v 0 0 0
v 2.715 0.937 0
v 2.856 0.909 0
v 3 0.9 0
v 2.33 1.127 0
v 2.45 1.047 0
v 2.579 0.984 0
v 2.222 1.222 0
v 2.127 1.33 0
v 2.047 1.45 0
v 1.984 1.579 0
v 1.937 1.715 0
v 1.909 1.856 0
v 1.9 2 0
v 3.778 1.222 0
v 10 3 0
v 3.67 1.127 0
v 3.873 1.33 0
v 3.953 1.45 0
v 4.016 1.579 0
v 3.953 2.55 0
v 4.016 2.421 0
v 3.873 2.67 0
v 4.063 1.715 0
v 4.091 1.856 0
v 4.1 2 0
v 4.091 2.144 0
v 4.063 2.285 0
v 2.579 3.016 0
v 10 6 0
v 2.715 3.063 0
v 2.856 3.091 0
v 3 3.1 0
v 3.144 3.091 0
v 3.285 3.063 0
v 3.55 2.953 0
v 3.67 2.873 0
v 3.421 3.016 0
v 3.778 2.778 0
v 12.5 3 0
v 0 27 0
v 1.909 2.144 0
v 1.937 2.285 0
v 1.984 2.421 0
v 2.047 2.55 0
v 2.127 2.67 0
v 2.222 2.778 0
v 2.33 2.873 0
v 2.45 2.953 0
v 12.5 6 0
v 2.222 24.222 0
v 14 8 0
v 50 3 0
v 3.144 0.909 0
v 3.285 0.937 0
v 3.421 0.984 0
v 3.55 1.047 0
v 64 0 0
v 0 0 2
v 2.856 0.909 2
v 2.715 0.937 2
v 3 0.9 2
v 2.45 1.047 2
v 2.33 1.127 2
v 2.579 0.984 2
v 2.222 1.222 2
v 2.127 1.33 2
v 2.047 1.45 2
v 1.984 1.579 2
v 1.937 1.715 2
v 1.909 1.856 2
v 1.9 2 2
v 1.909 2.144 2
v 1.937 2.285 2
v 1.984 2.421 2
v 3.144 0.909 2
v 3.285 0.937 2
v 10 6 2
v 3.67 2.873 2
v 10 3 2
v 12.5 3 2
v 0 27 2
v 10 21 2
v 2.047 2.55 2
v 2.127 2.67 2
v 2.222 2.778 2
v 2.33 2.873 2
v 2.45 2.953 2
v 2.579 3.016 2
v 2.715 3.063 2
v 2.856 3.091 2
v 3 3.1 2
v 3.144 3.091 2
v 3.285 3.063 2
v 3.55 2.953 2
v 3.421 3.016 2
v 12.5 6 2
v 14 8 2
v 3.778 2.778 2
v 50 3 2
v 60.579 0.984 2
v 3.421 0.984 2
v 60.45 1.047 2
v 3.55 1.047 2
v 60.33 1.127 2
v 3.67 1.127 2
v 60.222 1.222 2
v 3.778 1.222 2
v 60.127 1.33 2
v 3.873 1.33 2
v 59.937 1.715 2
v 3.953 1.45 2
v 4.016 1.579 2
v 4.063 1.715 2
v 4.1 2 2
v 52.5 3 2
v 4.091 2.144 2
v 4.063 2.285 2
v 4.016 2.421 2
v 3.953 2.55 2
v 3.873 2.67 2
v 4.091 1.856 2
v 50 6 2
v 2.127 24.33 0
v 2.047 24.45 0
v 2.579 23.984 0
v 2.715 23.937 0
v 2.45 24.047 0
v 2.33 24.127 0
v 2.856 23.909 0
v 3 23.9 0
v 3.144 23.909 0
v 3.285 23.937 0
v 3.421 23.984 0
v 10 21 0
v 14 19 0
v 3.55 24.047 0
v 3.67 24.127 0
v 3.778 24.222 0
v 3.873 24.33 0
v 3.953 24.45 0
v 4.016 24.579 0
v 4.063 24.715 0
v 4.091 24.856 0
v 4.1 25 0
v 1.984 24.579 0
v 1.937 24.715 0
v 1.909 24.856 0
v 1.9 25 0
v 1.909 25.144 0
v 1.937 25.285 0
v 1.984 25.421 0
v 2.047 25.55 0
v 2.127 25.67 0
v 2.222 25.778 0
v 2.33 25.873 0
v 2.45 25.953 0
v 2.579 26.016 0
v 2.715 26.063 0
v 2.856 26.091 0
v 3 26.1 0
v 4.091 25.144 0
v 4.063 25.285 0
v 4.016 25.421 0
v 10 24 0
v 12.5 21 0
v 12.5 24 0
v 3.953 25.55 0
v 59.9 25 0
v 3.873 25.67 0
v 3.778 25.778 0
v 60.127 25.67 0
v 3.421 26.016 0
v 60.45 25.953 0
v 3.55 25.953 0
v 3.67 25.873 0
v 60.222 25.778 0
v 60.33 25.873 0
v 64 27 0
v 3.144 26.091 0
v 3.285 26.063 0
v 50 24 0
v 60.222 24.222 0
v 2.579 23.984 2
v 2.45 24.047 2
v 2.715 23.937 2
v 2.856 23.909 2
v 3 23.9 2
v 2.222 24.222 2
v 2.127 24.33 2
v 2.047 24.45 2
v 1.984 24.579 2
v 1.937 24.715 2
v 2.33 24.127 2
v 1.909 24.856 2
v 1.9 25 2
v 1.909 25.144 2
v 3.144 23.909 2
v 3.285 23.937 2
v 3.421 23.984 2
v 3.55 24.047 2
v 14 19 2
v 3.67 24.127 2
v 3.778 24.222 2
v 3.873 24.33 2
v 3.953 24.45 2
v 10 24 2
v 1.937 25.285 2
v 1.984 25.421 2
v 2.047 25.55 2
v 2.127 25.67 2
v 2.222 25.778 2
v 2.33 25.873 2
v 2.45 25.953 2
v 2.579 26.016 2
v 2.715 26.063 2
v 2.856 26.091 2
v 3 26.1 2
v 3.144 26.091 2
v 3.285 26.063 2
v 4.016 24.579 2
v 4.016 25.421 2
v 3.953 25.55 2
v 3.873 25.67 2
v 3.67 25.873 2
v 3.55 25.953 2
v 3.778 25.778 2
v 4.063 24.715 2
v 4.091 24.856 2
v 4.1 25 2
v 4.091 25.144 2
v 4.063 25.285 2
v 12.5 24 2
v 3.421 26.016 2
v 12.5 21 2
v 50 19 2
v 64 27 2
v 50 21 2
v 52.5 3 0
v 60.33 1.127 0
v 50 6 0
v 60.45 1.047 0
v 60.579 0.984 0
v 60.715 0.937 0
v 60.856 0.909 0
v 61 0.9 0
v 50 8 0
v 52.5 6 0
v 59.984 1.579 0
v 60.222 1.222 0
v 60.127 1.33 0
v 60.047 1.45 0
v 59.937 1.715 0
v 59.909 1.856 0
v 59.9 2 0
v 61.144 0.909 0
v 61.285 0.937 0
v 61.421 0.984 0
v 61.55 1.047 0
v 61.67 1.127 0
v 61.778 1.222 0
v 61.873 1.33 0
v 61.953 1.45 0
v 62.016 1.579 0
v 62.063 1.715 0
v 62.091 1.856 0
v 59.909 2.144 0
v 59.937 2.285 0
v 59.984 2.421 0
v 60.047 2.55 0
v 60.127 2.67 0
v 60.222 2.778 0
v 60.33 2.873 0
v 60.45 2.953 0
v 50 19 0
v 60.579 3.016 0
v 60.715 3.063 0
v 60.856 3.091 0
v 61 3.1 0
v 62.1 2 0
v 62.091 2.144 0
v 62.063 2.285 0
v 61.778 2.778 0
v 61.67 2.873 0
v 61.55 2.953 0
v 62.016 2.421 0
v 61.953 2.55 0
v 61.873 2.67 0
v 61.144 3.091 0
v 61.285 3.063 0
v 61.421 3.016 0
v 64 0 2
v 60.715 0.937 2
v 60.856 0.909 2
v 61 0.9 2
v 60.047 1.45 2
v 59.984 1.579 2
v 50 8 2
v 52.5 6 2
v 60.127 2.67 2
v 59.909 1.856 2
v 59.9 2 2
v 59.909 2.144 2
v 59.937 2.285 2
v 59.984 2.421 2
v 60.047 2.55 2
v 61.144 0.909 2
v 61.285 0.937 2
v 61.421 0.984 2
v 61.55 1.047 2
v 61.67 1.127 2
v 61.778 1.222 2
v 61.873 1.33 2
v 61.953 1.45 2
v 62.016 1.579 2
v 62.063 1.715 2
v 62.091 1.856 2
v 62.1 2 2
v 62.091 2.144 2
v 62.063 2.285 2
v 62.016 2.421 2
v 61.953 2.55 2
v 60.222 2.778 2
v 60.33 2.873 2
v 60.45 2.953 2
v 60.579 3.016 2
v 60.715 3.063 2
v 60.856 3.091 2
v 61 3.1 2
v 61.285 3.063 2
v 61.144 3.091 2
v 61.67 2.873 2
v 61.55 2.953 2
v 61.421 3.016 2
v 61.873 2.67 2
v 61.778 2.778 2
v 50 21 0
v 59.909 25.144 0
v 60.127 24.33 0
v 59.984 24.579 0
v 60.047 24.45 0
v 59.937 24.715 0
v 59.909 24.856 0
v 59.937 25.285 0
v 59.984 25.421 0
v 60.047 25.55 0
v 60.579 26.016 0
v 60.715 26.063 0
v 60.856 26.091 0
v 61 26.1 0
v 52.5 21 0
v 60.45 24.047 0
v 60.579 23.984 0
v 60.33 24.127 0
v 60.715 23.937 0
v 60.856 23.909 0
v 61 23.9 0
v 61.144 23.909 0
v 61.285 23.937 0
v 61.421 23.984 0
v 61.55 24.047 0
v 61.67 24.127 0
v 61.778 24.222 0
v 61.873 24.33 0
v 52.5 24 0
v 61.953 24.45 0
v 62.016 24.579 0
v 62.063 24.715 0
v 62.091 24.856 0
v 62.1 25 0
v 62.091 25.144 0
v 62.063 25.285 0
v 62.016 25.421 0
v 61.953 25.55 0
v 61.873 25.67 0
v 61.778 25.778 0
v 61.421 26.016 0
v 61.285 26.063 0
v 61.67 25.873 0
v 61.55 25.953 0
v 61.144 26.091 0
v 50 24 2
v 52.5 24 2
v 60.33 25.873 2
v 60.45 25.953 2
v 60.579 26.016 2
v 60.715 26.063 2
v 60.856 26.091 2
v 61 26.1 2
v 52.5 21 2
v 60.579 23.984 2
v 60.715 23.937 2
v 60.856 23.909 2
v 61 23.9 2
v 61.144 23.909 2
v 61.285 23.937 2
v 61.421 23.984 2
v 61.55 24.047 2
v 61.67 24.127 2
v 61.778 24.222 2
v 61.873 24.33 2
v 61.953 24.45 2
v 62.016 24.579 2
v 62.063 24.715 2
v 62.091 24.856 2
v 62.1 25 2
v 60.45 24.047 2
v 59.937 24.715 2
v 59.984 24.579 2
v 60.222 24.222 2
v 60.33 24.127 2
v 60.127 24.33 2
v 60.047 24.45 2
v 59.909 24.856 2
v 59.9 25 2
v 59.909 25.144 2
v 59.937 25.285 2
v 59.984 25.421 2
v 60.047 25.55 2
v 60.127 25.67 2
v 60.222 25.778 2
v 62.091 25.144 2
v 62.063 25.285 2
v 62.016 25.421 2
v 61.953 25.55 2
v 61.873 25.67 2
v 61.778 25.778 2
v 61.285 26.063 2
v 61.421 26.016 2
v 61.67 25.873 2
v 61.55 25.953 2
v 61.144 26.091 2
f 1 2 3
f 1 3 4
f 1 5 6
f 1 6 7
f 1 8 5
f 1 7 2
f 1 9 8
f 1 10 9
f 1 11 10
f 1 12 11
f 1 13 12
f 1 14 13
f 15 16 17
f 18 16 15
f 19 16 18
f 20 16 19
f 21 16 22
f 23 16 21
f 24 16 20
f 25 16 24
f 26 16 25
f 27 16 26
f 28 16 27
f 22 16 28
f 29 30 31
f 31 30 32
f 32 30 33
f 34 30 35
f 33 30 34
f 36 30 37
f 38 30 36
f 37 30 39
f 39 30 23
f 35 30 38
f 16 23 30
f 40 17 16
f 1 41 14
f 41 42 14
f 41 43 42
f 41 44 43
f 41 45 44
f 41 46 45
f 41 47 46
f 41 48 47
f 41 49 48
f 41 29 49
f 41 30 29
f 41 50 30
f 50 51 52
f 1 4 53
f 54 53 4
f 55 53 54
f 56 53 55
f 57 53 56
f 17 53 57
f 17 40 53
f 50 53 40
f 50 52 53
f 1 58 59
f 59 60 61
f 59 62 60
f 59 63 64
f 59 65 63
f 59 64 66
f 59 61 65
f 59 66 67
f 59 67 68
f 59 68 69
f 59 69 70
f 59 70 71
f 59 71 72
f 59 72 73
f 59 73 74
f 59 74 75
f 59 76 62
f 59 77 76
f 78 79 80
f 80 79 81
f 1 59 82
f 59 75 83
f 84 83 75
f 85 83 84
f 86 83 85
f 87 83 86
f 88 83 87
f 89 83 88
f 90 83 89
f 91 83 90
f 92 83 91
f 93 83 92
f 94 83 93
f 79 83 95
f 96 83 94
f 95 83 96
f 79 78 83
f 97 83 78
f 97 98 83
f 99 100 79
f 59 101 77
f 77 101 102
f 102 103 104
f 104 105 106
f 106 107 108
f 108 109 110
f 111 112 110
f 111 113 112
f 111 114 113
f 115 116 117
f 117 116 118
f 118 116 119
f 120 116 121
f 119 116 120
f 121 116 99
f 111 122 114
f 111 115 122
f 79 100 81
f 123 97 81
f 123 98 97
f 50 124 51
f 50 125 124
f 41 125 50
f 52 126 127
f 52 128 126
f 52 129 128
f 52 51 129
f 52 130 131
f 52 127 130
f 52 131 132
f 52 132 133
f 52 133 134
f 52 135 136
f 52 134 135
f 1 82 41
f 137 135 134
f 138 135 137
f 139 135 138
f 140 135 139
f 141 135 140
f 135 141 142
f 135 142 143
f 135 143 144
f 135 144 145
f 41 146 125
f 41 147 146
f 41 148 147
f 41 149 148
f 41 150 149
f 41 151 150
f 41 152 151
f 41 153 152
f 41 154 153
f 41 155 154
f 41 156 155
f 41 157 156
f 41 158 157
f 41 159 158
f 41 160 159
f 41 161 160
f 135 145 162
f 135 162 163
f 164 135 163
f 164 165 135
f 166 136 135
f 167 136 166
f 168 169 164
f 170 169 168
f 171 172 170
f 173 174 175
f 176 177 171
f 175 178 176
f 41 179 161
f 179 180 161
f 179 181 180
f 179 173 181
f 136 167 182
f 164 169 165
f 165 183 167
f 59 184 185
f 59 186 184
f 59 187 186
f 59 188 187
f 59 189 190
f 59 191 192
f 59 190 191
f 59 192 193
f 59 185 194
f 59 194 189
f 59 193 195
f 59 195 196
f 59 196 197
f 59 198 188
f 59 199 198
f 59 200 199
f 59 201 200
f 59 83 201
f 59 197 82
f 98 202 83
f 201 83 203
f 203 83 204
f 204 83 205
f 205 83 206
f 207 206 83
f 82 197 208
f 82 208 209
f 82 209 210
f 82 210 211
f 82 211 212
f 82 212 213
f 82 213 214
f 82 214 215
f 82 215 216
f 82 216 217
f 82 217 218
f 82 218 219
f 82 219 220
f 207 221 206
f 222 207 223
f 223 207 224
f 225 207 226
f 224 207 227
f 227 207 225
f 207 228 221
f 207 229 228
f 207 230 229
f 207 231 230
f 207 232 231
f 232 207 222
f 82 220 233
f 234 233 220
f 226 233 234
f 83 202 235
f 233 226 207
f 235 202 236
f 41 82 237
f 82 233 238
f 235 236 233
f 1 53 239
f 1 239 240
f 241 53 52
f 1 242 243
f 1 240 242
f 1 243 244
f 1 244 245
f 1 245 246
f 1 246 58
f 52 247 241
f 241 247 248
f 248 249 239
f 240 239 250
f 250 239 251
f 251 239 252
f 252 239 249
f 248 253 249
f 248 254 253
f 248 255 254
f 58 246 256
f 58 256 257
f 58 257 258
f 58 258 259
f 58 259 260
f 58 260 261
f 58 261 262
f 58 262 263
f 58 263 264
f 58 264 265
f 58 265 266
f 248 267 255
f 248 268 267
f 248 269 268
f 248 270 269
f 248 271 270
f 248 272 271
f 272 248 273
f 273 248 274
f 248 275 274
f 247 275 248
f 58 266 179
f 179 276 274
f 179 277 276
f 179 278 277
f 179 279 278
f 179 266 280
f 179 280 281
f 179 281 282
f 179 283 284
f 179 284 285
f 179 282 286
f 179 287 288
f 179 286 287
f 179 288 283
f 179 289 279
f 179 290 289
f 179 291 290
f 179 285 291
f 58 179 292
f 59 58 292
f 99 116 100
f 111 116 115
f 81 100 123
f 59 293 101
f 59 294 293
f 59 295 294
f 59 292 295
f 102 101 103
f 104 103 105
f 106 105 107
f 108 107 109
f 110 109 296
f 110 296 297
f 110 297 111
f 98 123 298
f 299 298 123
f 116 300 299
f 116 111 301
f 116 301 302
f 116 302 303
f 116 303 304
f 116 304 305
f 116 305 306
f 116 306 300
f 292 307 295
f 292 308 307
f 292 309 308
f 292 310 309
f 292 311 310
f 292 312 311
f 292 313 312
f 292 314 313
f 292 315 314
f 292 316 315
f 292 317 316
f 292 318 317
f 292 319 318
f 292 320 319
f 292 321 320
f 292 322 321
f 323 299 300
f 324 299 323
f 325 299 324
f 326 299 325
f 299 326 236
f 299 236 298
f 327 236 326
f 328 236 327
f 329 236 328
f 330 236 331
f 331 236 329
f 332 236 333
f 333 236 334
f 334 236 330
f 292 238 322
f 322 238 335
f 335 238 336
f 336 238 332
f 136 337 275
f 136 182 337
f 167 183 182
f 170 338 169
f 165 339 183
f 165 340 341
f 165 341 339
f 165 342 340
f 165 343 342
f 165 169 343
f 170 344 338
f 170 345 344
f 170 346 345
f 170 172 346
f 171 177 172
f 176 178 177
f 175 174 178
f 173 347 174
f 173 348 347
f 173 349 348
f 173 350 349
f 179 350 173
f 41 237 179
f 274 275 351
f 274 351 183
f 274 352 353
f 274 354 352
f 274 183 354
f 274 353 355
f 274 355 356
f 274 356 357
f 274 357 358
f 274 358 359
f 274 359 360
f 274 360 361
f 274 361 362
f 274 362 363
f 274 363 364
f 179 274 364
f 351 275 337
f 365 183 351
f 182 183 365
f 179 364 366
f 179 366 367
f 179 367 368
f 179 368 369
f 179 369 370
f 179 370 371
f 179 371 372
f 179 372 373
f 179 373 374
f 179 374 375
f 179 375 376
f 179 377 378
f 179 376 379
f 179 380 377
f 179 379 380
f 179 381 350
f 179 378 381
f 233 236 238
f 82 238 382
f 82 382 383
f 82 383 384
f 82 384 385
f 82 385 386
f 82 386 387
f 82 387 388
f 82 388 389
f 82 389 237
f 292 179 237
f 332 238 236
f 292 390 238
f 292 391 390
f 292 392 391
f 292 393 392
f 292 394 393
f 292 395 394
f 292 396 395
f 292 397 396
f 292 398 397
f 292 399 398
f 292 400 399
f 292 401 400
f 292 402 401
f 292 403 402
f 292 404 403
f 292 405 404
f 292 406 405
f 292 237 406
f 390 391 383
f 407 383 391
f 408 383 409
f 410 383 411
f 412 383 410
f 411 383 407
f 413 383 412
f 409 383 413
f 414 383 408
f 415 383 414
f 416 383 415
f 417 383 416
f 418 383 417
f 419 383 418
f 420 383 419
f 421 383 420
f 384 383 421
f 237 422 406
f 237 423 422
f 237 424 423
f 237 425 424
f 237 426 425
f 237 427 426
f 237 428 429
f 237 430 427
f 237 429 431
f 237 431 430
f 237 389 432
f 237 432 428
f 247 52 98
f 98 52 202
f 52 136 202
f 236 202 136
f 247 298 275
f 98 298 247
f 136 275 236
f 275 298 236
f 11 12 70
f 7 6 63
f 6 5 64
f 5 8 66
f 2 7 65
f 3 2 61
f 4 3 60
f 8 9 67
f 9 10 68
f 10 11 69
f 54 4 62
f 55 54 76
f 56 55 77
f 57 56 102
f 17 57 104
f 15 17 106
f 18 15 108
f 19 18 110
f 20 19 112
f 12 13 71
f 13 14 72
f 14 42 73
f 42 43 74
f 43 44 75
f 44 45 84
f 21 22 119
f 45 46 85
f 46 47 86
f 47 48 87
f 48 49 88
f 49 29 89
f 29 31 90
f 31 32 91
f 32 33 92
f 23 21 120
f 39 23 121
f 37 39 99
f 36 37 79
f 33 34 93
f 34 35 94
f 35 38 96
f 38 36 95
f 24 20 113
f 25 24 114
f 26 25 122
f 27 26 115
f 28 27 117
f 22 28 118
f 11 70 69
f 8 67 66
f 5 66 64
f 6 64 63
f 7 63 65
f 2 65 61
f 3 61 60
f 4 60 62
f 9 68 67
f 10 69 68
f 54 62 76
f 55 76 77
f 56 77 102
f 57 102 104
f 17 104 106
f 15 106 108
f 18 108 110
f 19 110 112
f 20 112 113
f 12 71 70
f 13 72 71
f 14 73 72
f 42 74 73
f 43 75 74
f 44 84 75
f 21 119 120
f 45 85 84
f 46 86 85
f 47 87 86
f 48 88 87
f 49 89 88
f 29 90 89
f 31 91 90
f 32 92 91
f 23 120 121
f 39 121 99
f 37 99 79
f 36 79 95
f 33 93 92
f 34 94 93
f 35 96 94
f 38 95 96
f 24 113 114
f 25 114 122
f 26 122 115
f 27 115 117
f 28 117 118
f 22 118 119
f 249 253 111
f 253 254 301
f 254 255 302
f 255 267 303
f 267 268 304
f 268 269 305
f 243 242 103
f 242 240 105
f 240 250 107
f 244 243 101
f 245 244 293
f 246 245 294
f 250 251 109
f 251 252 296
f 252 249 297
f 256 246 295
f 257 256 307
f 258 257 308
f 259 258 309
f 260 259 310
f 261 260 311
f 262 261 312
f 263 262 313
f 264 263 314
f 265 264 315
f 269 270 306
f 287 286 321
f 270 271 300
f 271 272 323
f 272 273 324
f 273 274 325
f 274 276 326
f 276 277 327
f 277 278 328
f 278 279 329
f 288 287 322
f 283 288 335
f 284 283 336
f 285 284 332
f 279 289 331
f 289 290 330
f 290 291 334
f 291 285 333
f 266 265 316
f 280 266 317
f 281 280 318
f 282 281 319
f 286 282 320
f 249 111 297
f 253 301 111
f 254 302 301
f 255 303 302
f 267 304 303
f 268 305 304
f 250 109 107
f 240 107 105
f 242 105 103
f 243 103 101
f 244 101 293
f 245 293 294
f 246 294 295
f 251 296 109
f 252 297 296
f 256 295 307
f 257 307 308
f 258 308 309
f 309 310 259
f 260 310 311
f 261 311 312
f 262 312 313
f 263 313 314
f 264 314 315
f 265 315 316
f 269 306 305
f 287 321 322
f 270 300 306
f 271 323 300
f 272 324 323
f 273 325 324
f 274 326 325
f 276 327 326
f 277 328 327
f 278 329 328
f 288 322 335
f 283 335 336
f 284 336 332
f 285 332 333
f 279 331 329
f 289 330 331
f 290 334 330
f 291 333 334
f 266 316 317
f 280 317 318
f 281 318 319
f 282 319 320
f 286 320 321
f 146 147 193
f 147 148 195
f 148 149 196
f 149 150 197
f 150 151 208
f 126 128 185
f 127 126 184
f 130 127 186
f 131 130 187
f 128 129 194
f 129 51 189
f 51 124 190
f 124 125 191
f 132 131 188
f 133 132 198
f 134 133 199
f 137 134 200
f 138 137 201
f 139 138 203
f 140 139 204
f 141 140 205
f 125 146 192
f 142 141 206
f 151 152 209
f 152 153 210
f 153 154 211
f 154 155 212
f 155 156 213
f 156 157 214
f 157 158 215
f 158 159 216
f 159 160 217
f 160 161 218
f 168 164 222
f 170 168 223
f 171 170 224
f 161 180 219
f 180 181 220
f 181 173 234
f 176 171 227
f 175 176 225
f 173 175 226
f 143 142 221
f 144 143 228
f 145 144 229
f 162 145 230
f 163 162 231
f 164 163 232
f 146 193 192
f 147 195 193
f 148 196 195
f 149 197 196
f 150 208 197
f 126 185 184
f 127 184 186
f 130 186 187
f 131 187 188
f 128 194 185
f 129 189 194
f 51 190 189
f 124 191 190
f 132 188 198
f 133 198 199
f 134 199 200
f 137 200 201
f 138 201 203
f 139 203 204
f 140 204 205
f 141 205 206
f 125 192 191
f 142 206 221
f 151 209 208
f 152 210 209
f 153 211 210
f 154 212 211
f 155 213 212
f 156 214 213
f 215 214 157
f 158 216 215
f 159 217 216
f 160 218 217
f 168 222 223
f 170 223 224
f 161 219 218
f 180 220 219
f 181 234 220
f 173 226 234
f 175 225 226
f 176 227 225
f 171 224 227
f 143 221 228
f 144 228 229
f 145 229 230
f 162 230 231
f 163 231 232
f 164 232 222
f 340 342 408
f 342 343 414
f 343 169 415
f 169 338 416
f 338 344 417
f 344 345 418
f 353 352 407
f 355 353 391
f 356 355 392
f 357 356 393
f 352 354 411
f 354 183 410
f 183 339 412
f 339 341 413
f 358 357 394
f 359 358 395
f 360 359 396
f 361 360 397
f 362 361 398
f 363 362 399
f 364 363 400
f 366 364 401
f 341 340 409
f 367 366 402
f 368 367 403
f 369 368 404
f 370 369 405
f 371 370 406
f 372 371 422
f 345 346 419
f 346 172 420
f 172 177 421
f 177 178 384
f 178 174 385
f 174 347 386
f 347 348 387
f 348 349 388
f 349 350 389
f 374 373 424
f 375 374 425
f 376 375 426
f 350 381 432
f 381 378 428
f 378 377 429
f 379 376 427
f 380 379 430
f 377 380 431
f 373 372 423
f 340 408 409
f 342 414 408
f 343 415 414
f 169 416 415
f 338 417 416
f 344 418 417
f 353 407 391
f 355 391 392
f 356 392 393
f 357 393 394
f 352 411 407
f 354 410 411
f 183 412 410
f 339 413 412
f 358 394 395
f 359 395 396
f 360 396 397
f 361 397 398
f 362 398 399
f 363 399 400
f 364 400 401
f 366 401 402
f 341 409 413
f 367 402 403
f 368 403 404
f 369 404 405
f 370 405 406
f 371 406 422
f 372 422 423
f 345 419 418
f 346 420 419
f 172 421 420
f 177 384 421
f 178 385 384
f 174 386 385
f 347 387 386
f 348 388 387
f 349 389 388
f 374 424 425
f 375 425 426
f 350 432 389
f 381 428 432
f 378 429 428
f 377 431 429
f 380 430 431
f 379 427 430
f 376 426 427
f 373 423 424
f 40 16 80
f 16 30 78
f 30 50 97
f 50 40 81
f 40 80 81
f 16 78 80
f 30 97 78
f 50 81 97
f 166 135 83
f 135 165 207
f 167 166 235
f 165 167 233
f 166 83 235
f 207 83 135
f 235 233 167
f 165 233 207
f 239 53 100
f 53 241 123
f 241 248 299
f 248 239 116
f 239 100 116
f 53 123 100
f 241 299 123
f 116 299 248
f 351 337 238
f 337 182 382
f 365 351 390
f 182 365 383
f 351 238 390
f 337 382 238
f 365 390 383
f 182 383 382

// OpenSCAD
// Generated FH1 print part; mm. See parameters.json and physical-fit limits.
difference() {
difference() {
difference() {
difference() {
difference() {
difference() {
cube([64,27,2]);
translate([14, 8, -0.1]) { cube([36,11,2.2]); }
}
translate([3, 2, -0.1]) { cylinder(d=2.2,h=2.2,$fn=48); }
translate([61, 2, -0.1]) { cylinder(d=2.2,h=2.2,$fn=48); }
translate([3, 25, -0.1]) { cylinder(d=2.2,h=2.2,$fn=48); }
translate([61, 25, -0.1]) { cylinder(d=2.2,h=2.2,$fn=48); }
}
translate([10, 3, -0.1]) { cube([2.5,3,2.2]); }
}
translate([10, 21, -0.1]) { cube([2.5,3,2.2]); }
}
translate([50, 3, -0.1]) { cube([2.5,3,2.2]); }
}
translate([50, 21, -0.1]) { cube([2.5,3,2.2]); }
}
